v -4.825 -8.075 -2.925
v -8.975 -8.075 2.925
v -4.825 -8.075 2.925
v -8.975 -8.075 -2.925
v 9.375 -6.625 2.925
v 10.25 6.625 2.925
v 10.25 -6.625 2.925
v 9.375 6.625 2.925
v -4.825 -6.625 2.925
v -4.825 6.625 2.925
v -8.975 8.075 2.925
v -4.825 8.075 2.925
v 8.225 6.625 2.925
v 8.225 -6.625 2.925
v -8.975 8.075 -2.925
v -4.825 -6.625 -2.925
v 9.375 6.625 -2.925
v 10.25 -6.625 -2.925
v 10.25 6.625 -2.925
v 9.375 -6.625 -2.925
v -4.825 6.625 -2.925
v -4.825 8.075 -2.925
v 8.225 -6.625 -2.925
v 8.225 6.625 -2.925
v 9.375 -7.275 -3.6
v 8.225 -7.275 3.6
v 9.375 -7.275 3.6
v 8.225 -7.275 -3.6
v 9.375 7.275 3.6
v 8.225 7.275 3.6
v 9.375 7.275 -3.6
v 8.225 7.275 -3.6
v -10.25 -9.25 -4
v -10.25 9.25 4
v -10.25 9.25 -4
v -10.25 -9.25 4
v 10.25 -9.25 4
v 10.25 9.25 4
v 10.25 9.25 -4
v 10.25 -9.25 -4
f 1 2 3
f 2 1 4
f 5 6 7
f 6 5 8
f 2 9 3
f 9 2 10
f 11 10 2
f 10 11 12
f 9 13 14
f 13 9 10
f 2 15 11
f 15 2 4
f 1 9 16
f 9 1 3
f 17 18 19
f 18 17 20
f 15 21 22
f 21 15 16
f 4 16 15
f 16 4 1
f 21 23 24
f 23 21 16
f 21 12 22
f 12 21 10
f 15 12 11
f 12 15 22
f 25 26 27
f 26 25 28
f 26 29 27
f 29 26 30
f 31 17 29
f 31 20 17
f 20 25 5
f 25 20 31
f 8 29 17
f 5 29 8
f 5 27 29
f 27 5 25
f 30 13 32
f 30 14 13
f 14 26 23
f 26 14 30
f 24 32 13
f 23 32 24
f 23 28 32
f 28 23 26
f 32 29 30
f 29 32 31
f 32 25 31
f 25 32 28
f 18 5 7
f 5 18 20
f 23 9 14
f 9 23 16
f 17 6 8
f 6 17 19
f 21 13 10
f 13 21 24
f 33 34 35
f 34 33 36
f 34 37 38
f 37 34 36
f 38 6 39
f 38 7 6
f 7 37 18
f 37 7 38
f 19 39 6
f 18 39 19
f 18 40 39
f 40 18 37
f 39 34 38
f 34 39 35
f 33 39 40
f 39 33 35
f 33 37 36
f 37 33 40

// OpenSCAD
$fn=45;

module usb_connector() {
    cube([16,13.1,5.7], center=true);
    translate([6.6,0,0]) cube([1,14.4,7.05], center=true);
    translate([-9.1,0,0]) cube([4,16,5.7], center=true);
}

module usb_difference() {
    minkowski() {
        usb_connector();
        cube(0.15, center=true);
    }
}

//translate([2,0,0]) color ("silver") usb_connector();

difference() {
    minkowski() {
        cube([20.5,18.5,8], center=true);
    }
    translate([2.2,0,0]) usb_difference();
}
